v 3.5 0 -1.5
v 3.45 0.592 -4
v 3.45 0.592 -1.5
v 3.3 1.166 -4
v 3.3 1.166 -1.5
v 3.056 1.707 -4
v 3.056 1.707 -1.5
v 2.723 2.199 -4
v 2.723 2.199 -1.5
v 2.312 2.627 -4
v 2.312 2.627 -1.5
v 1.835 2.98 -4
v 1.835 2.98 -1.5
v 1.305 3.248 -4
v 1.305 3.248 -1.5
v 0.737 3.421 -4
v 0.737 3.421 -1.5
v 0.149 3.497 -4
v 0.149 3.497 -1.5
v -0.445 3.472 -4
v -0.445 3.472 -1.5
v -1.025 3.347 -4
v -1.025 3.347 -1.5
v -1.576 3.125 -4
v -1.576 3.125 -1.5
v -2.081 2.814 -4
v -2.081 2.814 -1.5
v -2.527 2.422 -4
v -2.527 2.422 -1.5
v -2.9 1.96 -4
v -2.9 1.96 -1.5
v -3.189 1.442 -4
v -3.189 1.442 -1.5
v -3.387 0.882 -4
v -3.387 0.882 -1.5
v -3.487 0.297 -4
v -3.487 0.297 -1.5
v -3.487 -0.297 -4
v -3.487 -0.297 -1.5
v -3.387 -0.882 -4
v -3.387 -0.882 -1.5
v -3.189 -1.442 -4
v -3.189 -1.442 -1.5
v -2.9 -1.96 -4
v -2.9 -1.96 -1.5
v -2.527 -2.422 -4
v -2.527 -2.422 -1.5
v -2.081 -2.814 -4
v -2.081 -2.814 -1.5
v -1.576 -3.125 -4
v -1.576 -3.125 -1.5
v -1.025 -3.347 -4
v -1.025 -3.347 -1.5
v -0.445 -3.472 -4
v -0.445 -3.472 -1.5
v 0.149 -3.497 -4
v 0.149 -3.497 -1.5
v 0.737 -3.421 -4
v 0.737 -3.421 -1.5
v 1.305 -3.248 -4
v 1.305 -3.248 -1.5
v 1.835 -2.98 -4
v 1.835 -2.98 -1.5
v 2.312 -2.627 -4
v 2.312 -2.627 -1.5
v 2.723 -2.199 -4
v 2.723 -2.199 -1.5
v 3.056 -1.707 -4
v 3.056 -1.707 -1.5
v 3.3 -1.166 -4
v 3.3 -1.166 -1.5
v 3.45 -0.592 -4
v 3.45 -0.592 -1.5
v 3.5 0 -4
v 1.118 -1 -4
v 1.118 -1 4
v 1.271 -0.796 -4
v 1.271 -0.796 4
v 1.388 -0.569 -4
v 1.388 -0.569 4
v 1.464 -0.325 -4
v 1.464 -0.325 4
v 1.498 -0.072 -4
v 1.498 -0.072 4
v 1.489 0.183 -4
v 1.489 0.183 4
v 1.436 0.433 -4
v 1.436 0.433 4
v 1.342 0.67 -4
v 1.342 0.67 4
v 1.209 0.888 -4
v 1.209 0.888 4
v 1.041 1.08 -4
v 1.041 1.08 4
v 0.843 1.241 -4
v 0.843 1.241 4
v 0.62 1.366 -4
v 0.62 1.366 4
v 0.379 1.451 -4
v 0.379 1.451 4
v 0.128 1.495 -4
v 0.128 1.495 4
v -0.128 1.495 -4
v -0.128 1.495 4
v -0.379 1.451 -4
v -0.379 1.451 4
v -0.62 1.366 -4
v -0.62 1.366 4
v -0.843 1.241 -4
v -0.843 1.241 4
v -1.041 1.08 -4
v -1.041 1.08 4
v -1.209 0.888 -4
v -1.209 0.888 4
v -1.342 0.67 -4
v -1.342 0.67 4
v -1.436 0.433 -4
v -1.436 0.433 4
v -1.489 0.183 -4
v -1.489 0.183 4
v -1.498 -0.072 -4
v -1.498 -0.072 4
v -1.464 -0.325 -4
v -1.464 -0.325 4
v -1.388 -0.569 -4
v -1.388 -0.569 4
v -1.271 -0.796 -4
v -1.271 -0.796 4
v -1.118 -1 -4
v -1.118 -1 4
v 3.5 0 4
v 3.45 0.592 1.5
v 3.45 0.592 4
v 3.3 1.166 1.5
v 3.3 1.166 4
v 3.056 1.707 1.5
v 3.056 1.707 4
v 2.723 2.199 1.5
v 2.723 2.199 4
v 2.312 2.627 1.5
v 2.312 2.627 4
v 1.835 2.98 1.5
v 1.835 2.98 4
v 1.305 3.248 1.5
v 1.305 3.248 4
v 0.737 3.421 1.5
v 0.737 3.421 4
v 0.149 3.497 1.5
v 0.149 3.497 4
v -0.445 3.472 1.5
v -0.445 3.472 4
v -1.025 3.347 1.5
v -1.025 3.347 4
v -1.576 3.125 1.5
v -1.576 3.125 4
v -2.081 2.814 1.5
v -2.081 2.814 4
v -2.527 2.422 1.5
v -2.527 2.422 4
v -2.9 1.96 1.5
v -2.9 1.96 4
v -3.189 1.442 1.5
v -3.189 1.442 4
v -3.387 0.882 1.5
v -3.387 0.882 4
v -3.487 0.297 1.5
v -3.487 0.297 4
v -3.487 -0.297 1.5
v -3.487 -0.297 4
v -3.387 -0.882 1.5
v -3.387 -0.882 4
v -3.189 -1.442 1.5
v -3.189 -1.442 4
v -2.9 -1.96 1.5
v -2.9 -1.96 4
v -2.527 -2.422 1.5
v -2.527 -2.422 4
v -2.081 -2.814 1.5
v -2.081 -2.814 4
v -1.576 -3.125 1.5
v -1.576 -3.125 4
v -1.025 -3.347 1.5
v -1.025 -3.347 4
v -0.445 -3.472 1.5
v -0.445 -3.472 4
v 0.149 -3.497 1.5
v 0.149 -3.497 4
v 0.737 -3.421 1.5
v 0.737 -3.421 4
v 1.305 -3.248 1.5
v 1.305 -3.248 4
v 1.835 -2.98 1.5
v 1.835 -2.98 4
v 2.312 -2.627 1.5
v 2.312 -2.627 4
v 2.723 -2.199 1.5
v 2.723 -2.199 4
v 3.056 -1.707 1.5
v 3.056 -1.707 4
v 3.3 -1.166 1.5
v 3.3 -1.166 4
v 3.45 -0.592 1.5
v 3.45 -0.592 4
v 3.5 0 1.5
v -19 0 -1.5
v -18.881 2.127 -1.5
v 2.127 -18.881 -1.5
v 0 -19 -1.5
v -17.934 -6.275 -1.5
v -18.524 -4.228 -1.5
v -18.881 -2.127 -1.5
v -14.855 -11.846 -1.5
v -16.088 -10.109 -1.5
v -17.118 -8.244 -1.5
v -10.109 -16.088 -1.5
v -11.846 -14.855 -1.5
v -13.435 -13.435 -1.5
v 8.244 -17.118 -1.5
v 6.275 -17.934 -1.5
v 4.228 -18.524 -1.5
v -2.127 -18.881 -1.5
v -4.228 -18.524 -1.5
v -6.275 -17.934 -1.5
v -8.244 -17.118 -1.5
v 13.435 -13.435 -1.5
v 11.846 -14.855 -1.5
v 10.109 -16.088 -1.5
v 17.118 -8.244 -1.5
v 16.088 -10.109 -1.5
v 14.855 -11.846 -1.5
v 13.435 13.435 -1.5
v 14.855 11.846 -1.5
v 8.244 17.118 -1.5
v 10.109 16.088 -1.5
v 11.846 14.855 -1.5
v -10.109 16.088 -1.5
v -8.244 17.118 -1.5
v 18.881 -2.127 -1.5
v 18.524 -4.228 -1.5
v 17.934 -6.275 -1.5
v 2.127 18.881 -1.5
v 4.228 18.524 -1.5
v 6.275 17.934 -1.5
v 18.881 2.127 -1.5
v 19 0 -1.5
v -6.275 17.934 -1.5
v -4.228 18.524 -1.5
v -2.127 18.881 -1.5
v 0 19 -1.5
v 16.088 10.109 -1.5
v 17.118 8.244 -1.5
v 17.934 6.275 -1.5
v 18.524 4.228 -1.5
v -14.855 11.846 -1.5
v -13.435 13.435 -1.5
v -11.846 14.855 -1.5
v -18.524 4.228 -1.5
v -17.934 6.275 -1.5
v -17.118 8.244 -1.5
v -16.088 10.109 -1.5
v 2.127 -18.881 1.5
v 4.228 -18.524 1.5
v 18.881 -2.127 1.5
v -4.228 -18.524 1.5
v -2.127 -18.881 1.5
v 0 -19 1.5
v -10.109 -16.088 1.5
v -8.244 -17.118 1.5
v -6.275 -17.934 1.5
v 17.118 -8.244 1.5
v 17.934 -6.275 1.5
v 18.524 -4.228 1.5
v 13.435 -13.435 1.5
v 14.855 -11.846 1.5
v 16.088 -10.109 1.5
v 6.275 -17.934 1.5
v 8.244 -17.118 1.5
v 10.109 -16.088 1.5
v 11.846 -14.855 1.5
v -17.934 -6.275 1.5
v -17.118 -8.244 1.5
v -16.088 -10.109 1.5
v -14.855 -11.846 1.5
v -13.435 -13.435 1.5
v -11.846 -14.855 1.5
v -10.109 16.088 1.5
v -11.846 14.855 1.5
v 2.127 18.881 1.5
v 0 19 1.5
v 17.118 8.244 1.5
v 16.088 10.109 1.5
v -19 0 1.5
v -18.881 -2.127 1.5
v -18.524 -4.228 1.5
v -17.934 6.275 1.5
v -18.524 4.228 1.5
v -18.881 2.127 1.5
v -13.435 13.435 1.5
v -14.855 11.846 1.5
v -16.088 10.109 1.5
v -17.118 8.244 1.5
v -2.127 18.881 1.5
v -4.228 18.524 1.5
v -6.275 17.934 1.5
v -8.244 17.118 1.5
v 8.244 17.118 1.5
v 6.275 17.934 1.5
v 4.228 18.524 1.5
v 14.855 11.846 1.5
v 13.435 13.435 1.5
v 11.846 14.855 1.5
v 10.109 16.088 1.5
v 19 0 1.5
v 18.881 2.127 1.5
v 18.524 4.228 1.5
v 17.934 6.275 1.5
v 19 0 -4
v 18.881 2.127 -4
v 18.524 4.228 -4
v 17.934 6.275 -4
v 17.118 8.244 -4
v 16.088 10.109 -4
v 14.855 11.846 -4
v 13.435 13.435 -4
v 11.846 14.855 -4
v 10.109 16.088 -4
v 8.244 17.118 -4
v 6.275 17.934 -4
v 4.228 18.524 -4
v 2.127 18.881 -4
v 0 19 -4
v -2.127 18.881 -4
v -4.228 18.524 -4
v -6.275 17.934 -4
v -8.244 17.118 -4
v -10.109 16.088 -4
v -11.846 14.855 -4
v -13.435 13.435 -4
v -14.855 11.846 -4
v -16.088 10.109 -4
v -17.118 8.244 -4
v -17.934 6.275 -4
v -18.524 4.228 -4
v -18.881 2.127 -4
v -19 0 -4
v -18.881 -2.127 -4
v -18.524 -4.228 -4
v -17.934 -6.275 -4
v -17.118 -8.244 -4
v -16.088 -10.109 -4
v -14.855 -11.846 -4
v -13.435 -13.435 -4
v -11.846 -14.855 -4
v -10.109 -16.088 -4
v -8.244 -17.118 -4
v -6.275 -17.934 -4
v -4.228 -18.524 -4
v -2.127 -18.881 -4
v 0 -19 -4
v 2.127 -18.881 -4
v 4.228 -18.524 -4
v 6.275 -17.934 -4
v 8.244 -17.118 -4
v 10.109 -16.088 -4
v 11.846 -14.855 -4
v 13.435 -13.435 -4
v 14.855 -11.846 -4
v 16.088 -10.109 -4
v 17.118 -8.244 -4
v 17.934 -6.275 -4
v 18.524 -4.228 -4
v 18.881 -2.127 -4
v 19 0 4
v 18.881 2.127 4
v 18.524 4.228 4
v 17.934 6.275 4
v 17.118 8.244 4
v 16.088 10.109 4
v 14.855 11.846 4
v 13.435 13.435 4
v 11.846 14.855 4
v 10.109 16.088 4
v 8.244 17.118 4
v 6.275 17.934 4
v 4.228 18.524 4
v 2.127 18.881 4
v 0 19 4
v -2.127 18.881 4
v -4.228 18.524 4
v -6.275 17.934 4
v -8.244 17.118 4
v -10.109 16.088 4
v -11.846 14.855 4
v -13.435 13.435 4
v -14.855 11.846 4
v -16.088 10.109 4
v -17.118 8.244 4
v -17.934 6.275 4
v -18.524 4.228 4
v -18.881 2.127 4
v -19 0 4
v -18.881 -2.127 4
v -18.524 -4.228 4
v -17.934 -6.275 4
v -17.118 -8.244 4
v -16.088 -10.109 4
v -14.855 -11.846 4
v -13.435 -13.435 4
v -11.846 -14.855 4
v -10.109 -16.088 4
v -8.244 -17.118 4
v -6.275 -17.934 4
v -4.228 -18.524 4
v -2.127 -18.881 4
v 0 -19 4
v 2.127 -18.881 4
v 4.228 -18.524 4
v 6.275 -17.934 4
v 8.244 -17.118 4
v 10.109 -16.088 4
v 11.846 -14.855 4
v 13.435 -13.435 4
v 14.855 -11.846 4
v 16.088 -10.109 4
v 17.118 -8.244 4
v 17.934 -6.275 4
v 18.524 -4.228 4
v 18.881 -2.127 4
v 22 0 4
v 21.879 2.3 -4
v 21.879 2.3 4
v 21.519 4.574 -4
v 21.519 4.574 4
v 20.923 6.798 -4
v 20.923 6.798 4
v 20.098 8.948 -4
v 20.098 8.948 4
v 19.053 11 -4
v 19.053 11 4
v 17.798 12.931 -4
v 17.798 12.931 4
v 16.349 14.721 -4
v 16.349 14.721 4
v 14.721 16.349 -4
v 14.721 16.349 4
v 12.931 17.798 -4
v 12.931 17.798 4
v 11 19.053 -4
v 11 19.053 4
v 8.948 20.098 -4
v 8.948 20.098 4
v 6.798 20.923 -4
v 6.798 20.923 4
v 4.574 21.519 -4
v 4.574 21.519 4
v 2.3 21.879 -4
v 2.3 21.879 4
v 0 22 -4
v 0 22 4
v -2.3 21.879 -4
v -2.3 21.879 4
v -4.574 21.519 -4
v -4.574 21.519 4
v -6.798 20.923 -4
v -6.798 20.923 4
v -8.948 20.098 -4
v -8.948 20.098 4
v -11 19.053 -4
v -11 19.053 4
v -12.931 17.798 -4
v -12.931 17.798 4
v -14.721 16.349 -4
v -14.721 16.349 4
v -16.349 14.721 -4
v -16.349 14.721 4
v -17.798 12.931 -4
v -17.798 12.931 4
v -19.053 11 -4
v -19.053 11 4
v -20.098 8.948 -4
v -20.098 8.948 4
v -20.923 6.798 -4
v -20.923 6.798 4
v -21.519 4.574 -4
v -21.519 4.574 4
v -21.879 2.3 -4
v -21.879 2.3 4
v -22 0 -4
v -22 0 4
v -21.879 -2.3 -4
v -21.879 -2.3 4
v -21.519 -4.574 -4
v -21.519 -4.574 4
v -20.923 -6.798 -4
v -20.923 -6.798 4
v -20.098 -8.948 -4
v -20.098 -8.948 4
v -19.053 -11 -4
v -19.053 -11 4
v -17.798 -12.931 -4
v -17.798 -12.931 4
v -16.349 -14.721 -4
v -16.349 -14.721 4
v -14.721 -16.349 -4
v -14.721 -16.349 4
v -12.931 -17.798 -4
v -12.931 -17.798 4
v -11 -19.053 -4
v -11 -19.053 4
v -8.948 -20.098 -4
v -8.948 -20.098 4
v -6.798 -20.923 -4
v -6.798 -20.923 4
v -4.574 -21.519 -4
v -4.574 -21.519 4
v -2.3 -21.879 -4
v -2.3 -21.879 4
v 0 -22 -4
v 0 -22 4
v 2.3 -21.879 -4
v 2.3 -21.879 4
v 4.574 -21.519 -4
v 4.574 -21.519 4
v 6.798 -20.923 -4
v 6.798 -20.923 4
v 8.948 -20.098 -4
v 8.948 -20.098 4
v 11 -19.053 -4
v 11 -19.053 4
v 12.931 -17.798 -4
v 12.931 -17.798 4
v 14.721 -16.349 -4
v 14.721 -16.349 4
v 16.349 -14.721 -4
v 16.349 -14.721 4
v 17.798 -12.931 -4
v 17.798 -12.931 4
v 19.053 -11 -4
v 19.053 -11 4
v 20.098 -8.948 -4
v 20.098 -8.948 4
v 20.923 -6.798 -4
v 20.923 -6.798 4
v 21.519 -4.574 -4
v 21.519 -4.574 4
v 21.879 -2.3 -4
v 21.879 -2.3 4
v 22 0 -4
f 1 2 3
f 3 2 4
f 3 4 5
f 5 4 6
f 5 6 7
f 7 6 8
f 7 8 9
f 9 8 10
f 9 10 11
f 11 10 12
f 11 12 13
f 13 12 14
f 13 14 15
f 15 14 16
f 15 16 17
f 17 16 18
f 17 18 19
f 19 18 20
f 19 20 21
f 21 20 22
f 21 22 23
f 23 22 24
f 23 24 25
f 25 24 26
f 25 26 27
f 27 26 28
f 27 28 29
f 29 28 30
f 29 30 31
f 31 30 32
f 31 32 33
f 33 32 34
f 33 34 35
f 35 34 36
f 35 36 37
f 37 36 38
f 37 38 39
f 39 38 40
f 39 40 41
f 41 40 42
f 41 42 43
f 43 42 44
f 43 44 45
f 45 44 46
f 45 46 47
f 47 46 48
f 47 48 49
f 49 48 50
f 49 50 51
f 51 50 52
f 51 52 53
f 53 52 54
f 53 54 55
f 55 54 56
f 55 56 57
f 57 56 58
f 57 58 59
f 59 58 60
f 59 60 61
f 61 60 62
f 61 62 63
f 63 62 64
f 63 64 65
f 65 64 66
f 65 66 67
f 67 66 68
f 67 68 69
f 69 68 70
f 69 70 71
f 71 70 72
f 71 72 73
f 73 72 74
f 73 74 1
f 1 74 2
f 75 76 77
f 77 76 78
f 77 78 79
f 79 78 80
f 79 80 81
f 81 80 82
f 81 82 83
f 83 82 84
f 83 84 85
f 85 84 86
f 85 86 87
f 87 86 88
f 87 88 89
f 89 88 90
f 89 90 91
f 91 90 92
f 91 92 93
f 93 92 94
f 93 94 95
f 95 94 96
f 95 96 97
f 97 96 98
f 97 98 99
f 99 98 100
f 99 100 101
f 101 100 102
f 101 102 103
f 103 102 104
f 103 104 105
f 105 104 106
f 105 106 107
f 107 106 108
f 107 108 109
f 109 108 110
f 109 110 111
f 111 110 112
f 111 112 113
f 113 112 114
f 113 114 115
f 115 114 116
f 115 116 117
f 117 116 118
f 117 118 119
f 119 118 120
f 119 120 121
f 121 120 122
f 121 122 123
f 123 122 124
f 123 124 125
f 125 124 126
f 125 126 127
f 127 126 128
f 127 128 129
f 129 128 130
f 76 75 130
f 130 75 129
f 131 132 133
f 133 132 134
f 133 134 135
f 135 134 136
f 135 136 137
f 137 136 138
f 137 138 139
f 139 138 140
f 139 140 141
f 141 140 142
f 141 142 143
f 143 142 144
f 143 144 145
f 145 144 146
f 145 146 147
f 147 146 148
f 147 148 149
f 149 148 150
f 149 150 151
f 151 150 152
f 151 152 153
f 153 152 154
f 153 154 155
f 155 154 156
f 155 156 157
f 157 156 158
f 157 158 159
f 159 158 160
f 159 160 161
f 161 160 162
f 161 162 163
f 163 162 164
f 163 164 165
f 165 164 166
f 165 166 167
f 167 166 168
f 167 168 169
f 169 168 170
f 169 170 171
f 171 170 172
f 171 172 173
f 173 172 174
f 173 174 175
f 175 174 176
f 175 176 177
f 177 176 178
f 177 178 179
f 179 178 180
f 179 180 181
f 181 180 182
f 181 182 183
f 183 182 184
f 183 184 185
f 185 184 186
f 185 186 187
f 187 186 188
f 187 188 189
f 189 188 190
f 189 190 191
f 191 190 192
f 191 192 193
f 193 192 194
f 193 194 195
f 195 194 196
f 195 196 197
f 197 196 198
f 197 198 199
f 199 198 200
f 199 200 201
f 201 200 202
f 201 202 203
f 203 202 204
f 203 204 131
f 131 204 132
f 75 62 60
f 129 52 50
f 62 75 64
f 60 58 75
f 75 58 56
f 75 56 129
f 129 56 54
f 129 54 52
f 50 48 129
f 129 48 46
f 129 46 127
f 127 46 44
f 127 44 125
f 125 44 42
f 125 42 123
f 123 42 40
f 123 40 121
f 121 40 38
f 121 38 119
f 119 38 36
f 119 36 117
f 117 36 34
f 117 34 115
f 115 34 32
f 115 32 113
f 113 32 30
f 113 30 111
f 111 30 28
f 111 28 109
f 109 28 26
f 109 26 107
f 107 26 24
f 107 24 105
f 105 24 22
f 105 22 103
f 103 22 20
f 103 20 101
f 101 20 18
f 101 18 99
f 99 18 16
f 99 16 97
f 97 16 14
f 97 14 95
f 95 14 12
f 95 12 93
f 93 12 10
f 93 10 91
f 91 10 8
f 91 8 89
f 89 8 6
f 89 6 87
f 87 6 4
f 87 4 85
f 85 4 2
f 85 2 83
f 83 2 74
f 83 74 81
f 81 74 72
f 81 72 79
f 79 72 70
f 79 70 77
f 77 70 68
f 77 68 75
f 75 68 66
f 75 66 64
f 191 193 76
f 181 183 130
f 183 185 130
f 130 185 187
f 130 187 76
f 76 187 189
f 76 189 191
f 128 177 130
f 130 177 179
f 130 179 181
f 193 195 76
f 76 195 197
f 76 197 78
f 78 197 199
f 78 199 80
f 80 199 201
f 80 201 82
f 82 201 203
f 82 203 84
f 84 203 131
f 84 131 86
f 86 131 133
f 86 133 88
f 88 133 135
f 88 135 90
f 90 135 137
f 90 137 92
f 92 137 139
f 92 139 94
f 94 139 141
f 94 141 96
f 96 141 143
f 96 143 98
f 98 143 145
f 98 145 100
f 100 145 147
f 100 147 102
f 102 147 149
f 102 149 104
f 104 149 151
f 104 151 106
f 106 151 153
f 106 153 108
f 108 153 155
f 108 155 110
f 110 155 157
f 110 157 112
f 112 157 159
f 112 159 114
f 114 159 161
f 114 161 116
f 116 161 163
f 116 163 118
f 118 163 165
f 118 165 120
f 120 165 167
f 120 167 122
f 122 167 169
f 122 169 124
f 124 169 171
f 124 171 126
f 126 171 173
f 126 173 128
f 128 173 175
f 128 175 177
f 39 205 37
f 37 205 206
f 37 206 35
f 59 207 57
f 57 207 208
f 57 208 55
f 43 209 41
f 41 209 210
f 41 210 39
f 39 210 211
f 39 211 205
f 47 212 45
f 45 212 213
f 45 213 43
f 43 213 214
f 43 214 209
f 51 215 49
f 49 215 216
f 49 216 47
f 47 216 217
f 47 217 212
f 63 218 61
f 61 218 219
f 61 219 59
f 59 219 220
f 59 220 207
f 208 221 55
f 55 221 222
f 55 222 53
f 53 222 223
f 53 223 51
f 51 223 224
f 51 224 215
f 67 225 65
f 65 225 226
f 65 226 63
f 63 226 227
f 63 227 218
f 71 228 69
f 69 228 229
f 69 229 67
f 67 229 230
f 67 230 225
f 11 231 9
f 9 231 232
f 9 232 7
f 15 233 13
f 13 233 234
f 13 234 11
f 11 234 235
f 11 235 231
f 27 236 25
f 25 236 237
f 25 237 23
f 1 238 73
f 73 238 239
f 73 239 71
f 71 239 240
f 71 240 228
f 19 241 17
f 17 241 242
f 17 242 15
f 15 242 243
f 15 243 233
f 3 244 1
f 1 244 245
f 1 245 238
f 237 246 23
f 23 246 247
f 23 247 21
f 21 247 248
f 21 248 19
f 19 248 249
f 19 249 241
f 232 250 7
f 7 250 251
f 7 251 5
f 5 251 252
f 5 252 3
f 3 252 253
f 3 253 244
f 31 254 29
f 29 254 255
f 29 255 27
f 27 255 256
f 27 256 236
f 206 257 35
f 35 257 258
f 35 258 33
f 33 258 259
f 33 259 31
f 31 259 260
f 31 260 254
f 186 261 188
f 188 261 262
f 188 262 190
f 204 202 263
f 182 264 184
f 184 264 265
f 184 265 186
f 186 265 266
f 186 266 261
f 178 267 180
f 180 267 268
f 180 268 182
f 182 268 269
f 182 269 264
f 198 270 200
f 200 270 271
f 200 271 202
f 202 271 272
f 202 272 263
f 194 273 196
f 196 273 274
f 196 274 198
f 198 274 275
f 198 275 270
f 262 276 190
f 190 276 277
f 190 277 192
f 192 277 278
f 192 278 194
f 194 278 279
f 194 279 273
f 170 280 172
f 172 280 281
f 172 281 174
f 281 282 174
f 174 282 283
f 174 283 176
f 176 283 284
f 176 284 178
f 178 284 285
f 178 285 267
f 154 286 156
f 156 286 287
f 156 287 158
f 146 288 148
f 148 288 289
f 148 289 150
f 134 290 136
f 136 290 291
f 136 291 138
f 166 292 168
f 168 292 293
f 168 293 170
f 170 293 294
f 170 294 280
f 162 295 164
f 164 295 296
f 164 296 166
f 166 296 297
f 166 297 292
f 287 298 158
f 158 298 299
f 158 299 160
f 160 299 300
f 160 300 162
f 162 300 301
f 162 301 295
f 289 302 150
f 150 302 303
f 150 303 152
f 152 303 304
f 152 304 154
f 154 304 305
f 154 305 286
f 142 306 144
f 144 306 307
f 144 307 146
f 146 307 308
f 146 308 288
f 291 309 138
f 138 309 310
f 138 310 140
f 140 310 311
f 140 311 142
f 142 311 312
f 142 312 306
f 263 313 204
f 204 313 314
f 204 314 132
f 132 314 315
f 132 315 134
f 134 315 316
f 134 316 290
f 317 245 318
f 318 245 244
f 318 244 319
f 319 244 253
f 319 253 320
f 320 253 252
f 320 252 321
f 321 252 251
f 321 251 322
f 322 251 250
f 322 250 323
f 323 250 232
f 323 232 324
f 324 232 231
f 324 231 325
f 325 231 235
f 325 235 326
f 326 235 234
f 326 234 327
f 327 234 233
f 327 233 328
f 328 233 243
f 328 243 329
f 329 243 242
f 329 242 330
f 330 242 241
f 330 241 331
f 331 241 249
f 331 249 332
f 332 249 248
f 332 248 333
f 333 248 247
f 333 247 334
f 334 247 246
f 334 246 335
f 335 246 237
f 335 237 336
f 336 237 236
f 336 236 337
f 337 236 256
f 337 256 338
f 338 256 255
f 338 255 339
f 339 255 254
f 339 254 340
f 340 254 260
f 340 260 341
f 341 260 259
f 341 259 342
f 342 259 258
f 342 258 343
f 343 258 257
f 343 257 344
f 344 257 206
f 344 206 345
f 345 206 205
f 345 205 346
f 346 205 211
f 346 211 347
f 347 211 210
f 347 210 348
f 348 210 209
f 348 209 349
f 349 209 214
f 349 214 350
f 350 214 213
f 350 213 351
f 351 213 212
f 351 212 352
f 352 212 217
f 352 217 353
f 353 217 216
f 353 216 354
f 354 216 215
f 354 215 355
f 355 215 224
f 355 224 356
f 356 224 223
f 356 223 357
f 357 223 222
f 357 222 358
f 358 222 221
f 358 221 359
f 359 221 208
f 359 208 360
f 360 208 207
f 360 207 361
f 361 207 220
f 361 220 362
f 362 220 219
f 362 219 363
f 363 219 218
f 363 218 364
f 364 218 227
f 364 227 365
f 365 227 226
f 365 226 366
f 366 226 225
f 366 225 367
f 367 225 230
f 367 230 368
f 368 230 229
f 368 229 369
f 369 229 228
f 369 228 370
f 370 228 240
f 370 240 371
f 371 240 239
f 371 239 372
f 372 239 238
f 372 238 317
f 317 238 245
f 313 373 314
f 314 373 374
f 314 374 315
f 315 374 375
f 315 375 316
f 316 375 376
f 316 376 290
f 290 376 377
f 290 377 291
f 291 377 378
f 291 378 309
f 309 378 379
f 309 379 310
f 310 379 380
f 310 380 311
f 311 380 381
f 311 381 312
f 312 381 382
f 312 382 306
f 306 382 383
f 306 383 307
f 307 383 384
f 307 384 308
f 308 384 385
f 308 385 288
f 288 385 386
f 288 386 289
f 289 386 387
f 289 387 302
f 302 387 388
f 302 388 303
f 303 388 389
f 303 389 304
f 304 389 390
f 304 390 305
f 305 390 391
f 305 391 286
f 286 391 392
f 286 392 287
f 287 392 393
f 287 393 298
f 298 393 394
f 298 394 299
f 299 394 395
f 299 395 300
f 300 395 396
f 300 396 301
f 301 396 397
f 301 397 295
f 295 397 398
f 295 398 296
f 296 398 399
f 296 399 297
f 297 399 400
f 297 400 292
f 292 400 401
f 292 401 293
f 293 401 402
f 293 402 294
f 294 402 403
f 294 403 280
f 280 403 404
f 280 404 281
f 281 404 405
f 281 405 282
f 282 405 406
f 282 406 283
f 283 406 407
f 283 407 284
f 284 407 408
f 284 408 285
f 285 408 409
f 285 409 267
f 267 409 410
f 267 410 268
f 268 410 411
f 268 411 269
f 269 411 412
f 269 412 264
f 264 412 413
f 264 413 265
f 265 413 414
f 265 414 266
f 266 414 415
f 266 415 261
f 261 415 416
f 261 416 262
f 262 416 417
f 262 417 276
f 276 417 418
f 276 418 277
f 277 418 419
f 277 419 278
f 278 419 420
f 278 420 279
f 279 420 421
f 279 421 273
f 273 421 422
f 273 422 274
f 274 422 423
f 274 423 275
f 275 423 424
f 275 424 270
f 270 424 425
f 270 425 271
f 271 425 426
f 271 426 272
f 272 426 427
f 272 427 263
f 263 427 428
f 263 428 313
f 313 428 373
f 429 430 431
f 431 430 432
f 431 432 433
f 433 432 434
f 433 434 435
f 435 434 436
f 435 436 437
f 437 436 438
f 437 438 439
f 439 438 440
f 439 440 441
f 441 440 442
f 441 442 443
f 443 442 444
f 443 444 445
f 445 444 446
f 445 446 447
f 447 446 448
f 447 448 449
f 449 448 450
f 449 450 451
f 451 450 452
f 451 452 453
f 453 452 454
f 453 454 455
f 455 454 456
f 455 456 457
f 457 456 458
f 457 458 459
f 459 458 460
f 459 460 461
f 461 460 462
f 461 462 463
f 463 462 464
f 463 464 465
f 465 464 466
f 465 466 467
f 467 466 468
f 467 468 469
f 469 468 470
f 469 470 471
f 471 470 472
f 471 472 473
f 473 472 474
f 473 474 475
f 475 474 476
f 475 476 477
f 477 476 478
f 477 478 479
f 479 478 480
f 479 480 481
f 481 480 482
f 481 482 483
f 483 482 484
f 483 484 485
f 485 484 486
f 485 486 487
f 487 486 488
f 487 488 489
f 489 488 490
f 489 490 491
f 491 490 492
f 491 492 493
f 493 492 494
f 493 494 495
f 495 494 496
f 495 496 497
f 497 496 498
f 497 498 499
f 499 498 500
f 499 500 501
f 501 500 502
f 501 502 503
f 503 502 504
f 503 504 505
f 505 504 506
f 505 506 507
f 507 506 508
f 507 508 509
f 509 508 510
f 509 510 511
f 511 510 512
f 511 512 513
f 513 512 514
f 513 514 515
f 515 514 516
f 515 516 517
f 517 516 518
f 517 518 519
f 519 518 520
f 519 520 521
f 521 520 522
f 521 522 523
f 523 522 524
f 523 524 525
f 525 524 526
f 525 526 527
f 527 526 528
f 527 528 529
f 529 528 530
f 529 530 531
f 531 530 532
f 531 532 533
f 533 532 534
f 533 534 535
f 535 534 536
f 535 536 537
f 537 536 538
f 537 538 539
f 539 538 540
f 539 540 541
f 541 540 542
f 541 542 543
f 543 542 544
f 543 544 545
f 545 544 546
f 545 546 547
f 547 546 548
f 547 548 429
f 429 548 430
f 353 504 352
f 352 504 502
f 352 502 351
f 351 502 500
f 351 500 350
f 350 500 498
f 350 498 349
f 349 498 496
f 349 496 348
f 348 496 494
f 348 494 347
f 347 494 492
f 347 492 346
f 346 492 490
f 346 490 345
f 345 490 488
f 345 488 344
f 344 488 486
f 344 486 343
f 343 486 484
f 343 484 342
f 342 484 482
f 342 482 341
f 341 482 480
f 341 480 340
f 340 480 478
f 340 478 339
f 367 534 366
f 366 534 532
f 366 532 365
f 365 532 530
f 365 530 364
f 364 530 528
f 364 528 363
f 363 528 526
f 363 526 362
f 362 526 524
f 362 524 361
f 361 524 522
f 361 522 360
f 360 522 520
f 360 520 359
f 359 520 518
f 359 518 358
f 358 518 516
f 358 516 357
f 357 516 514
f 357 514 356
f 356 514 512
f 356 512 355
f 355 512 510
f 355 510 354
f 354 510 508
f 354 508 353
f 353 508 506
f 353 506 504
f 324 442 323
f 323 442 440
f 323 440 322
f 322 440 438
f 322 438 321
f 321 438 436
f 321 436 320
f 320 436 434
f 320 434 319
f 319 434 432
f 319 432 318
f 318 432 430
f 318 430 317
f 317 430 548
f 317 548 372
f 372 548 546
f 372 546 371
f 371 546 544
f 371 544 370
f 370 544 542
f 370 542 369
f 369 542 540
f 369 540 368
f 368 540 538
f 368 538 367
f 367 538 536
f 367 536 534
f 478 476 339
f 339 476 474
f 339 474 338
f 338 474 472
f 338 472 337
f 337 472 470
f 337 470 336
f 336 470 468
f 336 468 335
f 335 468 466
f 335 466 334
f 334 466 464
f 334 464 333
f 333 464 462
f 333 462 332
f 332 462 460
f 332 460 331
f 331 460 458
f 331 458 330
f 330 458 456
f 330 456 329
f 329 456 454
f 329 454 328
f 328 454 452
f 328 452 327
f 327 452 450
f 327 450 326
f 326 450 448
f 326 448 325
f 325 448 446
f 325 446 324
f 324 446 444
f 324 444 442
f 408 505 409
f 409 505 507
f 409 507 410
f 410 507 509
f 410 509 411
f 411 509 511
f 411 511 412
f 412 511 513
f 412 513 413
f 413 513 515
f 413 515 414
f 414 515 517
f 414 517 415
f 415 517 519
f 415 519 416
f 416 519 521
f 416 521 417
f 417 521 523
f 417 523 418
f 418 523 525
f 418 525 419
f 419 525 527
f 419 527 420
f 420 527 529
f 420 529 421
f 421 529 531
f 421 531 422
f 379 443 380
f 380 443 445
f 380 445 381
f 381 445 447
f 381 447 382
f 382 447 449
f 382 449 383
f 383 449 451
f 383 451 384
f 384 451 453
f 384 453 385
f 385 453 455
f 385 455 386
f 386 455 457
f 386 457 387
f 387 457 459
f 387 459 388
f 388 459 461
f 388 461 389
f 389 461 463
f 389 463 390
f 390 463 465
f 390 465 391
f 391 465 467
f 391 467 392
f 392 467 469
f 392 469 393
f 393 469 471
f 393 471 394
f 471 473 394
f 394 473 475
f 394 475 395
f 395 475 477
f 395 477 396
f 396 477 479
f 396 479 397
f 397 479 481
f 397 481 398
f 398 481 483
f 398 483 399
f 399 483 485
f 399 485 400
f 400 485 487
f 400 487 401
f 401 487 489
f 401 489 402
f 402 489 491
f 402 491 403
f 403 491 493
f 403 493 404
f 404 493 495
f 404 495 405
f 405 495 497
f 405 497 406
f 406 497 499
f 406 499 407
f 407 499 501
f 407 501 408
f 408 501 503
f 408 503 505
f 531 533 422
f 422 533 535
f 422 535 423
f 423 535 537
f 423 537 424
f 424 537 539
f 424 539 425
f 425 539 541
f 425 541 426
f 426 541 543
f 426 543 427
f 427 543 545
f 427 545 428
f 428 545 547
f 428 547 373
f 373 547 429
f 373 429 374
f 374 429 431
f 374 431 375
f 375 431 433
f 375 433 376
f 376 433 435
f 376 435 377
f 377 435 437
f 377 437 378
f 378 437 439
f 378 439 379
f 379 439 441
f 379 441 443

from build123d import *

# Parameters (mm, degrees)
BOSS_EXTRUDE1_DEPTH        = 4
BOSS_EXTRUDE1_DEPTH_BACK   = 4
SKETCH1_R                  = 22
SKETCH1_R_2                = 19
BOSS_EXTRUDE1_2_DEPTH      = 4
BOSS_EXTRUDE1_2_DEPTH_BACK = 4
SKETCH1_R_3                = 3.5
BOSS_EXTRUDE2_DEPTH        = 1.5
BOSS_EXTRUDE2_DEPTH_BACK   = 1.5
SKETCH1_3_R                = 19
SKETCH1_3_R_2              = 3.5


with BuildPart() as part:
    # Sketch1 → Boss-Extrude1 (new, two sides: drawn at the far end of the back side and taken through both)
    with BuildSketch(Plane.XY.offset(-BOSS_EXTRUDE1_DEPTH_BACK)):
        Circle(SKETCH1_R)
        Circle(SKETCH1_R_2, mode=Mode.SUBTRACT)
    extrude(amount=BOSS_EXTRUDE1_DEPTH + BOSS_EXTRUDE1_DEPTH_BACK)



with BuildPart() as body_2:
    # Sketch1 → Boss-Extrude1 2 (new, two sides: drawn at the far end of the back side and taken through both)
    with BuildSketch(Plane.XY.offset(-BOSS_EXTRUDE1_2_DEPTH_BACK)):
        Circle(SKETCH1_R_3)
        with BuildLine():
            Line((1.118033989, -1), (-1.118033989, -1))
            ThreePointArc((-1.118033989, -1), (0, 1.5), (1.118033989, -1))
        make_face(mode=Mode.SUBTRACT)
    extrude(amount=BOSS_EXTRUDE1_2_DEPTH + BOSS_EXTRUDE1_2_DEPTH_BACK)


with BuildPart() as part_1:
    add(part.part)

    add(body_2.part)  # Boss-Extrude2 merges body 2
    # Sketch1<3> → Boss-Extrude2 (add, two sides: drawn at the far end of the back side and taken through both)
    with BuildSketch(Plane.XY.offset(-BOSS_EXTRUDE2_DEPTH_BACK)):
        Circle(SKETCH1_3_R)
        Circle(SKETCH1_3_R_2, mode=Mode.SUBTRACT)
    extrude(amount=BOSS_EXTRUDE2_DEPTH + BOSS_EXTRUDE2_DEPTH_BACK)


solid = part_1.part
